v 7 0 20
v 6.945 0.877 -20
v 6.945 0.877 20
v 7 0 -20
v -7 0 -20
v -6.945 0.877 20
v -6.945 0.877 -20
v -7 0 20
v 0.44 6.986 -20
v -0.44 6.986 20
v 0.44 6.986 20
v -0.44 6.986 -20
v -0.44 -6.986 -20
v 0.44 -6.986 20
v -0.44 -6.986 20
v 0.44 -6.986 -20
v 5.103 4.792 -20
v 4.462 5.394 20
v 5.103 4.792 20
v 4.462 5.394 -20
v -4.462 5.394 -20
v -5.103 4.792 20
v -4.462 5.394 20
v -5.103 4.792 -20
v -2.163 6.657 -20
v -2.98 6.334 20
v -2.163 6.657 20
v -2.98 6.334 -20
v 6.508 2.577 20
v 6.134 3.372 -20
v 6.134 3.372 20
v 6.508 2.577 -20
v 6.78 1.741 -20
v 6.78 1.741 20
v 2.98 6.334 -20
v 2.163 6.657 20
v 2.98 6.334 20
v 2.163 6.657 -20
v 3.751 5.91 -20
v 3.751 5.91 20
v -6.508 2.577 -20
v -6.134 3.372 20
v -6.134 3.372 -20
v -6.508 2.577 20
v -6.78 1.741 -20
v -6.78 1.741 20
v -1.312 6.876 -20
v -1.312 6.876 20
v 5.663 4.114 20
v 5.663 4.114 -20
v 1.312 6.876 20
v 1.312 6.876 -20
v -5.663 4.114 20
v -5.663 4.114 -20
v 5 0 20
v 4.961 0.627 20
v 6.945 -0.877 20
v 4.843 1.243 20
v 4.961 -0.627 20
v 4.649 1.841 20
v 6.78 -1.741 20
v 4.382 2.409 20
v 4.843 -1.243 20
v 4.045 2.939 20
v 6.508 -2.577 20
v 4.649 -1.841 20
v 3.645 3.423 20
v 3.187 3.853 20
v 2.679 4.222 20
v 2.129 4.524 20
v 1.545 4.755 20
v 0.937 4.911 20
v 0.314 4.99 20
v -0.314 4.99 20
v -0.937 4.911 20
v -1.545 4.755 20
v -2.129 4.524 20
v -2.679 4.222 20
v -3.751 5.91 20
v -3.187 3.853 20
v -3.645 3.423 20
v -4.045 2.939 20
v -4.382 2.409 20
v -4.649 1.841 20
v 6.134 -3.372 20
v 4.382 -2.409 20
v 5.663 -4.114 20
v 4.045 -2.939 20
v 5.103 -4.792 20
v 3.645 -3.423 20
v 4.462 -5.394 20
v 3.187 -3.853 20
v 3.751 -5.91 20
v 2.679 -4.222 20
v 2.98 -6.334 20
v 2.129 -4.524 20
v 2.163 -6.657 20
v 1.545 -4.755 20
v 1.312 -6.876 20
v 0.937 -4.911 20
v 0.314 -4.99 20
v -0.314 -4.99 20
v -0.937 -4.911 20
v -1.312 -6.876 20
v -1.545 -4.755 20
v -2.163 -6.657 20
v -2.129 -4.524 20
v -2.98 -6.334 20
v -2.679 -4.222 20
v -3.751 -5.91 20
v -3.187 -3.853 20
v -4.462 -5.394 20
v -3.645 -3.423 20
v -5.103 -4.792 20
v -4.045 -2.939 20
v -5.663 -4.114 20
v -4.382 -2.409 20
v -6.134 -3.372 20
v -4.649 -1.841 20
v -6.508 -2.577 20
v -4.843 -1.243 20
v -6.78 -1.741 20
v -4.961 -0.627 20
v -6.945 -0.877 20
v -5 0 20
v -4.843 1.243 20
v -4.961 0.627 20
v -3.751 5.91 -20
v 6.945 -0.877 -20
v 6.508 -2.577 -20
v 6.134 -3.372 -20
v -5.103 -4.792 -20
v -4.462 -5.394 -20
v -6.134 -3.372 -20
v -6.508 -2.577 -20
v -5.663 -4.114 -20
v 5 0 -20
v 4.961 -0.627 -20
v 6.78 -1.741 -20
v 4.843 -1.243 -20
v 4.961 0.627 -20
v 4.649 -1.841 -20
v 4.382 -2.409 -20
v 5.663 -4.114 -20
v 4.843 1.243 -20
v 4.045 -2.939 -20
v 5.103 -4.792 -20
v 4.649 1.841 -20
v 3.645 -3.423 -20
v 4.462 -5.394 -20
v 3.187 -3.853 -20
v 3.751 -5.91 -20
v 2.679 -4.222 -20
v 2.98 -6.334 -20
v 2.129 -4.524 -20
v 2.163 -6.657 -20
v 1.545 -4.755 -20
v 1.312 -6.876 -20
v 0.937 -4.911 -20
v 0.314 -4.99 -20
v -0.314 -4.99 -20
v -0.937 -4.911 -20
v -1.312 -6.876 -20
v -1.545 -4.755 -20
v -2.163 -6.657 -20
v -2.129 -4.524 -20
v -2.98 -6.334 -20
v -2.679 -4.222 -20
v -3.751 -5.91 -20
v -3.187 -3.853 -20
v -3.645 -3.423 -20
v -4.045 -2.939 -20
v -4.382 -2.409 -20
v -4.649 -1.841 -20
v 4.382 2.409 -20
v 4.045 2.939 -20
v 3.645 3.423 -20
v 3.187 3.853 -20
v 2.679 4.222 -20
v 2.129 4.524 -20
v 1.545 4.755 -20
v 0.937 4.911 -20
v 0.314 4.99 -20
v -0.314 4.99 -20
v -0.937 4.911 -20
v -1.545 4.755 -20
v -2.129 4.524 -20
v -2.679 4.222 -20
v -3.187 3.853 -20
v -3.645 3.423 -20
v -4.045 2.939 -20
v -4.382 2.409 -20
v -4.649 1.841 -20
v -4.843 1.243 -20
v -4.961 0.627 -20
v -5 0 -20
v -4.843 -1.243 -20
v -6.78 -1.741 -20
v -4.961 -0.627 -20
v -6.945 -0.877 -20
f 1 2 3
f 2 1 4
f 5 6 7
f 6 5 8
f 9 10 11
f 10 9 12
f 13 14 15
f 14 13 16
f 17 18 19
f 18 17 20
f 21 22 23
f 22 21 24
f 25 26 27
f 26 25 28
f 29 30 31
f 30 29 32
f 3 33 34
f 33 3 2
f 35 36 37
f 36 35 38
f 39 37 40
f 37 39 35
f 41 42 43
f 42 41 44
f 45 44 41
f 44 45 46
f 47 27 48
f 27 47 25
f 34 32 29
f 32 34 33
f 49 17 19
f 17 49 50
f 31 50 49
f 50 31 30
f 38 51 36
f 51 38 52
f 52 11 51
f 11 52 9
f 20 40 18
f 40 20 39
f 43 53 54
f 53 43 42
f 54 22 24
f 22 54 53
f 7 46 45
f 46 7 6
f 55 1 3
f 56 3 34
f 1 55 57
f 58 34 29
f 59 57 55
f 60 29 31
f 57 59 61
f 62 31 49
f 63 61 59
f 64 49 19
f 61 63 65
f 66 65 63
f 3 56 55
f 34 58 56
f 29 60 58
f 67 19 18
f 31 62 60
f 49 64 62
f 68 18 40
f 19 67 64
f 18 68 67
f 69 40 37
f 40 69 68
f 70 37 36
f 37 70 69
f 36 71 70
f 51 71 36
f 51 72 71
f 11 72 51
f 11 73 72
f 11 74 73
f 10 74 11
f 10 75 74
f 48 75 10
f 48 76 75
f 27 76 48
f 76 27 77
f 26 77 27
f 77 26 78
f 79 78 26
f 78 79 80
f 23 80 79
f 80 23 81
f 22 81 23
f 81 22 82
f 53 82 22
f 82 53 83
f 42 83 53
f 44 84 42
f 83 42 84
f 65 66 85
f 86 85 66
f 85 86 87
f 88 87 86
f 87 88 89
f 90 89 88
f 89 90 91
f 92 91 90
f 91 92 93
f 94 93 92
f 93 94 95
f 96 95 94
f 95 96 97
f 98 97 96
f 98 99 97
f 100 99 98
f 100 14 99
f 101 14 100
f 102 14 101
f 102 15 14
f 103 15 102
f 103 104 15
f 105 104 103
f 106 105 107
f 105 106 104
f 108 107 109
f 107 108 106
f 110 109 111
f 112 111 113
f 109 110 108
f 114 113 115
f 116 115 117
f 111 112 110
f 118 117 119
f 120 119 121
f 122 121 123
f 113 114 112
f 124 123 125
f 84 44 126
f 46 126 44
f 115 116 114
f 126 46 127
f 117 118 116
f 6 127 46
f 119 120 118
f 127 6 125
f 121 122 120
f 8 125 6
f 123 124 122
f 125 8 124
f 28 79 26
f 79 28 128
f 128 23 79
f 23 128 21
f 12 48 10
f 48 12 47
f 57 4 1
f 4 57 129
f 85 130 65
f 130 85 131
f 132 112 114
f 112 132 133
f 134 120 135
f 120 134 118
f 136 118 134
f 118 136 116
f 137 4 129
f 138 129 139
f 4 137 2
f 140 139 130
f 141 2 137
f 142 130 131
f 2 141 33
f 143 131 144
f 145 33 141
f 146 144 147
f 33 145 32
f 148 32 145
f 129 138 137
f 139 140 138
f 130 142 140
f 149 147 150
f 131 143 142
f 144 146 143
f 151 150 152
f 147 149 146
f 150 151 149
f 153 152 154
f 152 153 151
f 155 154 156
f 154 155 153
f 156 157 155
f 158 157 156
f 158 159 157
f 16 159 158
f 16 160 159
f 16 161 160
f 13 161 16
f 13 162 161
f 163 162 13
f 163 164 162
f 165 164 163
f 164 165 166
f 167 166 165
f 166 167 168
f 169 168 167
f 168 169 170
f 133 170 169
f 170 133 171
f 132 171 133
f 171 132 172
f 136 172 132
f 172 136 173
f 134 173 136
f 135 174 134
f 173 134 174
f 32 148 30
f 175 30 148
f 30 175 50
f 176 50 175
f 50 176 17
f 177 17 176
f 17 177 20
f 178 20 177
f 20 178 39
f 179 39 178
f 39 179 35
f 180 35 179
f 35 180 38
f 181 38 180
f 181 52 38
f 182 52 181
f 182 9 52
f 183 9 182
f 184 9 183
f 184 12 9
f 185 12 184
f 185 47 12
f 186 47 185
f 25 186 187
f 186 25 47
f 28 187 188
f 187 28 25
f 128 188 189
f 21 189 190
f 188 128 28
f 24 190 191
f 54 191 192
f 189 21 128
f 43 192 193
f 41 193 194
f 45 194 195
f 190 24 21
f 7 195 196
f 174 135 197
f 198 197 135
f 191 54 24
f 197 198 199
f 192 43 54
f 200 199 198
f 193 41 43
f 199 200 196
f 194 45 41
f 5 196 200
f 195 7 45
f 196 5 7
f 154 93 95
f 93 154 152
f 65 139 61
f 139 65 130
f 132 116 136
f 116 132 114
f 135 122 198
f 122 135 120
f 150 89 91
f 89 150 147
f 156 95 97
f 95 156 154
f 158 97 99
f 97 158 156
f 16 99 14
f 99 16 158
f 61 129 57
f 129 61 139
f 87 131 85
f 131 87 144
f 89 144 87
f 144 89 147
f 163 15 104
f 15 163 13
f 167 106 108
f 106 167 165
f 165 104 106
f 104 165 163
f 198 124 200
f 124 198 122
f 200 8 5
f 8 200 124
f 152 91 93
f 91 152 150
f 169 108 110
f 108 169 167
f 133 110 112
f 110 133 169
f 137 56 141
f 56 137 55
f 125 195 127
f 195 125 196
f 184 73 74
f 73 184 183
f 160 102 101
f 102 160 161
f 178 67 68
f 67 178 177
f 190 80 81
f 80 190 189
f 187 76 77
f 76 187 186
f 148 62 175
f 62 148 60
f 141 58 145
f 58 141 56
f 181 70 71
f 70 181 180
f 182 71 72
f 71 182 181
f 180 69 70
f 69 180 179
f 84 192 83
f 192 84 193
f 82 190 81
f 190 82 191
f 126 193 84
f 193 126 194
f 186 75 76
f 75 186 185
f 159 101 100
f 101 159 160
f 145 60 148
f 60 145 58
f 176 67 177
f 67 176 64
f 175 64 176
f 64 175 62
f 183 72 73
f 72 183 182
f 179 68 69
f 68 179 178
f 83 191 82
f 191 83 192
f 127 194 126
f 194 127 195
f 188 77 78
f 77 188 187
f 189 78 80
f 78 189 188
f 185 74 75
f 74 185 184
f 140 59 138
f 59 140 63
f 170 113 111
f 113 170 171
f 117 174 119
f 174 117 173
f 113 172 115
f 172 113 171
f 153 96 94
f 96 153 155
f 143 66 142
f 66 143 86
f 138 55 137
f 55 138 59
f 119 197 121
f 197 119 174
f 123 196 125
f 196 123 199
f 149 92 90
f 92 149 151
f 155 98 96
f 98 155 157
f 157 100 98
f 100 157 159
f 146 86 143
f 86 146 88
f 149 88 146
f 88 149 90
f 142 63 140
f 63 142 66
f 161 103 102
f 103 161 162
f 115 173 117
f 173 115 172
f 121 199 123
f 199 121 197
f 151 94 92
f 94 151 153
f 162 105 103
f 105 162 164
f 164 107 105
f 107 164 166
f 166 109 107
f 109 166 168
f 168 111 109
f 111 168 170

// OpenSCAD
$fn = 50;


difference() {
	union() {
		translate(v = [0, 0, -20.0000000000]) {
			cylinder(h = 40, r = 7.0000000000);
		}
	}
	union() {
		translate(v = [0, 0, -100.0000000000]) {
			cylinder(h = 200, r = 5);
		}
	}
}
